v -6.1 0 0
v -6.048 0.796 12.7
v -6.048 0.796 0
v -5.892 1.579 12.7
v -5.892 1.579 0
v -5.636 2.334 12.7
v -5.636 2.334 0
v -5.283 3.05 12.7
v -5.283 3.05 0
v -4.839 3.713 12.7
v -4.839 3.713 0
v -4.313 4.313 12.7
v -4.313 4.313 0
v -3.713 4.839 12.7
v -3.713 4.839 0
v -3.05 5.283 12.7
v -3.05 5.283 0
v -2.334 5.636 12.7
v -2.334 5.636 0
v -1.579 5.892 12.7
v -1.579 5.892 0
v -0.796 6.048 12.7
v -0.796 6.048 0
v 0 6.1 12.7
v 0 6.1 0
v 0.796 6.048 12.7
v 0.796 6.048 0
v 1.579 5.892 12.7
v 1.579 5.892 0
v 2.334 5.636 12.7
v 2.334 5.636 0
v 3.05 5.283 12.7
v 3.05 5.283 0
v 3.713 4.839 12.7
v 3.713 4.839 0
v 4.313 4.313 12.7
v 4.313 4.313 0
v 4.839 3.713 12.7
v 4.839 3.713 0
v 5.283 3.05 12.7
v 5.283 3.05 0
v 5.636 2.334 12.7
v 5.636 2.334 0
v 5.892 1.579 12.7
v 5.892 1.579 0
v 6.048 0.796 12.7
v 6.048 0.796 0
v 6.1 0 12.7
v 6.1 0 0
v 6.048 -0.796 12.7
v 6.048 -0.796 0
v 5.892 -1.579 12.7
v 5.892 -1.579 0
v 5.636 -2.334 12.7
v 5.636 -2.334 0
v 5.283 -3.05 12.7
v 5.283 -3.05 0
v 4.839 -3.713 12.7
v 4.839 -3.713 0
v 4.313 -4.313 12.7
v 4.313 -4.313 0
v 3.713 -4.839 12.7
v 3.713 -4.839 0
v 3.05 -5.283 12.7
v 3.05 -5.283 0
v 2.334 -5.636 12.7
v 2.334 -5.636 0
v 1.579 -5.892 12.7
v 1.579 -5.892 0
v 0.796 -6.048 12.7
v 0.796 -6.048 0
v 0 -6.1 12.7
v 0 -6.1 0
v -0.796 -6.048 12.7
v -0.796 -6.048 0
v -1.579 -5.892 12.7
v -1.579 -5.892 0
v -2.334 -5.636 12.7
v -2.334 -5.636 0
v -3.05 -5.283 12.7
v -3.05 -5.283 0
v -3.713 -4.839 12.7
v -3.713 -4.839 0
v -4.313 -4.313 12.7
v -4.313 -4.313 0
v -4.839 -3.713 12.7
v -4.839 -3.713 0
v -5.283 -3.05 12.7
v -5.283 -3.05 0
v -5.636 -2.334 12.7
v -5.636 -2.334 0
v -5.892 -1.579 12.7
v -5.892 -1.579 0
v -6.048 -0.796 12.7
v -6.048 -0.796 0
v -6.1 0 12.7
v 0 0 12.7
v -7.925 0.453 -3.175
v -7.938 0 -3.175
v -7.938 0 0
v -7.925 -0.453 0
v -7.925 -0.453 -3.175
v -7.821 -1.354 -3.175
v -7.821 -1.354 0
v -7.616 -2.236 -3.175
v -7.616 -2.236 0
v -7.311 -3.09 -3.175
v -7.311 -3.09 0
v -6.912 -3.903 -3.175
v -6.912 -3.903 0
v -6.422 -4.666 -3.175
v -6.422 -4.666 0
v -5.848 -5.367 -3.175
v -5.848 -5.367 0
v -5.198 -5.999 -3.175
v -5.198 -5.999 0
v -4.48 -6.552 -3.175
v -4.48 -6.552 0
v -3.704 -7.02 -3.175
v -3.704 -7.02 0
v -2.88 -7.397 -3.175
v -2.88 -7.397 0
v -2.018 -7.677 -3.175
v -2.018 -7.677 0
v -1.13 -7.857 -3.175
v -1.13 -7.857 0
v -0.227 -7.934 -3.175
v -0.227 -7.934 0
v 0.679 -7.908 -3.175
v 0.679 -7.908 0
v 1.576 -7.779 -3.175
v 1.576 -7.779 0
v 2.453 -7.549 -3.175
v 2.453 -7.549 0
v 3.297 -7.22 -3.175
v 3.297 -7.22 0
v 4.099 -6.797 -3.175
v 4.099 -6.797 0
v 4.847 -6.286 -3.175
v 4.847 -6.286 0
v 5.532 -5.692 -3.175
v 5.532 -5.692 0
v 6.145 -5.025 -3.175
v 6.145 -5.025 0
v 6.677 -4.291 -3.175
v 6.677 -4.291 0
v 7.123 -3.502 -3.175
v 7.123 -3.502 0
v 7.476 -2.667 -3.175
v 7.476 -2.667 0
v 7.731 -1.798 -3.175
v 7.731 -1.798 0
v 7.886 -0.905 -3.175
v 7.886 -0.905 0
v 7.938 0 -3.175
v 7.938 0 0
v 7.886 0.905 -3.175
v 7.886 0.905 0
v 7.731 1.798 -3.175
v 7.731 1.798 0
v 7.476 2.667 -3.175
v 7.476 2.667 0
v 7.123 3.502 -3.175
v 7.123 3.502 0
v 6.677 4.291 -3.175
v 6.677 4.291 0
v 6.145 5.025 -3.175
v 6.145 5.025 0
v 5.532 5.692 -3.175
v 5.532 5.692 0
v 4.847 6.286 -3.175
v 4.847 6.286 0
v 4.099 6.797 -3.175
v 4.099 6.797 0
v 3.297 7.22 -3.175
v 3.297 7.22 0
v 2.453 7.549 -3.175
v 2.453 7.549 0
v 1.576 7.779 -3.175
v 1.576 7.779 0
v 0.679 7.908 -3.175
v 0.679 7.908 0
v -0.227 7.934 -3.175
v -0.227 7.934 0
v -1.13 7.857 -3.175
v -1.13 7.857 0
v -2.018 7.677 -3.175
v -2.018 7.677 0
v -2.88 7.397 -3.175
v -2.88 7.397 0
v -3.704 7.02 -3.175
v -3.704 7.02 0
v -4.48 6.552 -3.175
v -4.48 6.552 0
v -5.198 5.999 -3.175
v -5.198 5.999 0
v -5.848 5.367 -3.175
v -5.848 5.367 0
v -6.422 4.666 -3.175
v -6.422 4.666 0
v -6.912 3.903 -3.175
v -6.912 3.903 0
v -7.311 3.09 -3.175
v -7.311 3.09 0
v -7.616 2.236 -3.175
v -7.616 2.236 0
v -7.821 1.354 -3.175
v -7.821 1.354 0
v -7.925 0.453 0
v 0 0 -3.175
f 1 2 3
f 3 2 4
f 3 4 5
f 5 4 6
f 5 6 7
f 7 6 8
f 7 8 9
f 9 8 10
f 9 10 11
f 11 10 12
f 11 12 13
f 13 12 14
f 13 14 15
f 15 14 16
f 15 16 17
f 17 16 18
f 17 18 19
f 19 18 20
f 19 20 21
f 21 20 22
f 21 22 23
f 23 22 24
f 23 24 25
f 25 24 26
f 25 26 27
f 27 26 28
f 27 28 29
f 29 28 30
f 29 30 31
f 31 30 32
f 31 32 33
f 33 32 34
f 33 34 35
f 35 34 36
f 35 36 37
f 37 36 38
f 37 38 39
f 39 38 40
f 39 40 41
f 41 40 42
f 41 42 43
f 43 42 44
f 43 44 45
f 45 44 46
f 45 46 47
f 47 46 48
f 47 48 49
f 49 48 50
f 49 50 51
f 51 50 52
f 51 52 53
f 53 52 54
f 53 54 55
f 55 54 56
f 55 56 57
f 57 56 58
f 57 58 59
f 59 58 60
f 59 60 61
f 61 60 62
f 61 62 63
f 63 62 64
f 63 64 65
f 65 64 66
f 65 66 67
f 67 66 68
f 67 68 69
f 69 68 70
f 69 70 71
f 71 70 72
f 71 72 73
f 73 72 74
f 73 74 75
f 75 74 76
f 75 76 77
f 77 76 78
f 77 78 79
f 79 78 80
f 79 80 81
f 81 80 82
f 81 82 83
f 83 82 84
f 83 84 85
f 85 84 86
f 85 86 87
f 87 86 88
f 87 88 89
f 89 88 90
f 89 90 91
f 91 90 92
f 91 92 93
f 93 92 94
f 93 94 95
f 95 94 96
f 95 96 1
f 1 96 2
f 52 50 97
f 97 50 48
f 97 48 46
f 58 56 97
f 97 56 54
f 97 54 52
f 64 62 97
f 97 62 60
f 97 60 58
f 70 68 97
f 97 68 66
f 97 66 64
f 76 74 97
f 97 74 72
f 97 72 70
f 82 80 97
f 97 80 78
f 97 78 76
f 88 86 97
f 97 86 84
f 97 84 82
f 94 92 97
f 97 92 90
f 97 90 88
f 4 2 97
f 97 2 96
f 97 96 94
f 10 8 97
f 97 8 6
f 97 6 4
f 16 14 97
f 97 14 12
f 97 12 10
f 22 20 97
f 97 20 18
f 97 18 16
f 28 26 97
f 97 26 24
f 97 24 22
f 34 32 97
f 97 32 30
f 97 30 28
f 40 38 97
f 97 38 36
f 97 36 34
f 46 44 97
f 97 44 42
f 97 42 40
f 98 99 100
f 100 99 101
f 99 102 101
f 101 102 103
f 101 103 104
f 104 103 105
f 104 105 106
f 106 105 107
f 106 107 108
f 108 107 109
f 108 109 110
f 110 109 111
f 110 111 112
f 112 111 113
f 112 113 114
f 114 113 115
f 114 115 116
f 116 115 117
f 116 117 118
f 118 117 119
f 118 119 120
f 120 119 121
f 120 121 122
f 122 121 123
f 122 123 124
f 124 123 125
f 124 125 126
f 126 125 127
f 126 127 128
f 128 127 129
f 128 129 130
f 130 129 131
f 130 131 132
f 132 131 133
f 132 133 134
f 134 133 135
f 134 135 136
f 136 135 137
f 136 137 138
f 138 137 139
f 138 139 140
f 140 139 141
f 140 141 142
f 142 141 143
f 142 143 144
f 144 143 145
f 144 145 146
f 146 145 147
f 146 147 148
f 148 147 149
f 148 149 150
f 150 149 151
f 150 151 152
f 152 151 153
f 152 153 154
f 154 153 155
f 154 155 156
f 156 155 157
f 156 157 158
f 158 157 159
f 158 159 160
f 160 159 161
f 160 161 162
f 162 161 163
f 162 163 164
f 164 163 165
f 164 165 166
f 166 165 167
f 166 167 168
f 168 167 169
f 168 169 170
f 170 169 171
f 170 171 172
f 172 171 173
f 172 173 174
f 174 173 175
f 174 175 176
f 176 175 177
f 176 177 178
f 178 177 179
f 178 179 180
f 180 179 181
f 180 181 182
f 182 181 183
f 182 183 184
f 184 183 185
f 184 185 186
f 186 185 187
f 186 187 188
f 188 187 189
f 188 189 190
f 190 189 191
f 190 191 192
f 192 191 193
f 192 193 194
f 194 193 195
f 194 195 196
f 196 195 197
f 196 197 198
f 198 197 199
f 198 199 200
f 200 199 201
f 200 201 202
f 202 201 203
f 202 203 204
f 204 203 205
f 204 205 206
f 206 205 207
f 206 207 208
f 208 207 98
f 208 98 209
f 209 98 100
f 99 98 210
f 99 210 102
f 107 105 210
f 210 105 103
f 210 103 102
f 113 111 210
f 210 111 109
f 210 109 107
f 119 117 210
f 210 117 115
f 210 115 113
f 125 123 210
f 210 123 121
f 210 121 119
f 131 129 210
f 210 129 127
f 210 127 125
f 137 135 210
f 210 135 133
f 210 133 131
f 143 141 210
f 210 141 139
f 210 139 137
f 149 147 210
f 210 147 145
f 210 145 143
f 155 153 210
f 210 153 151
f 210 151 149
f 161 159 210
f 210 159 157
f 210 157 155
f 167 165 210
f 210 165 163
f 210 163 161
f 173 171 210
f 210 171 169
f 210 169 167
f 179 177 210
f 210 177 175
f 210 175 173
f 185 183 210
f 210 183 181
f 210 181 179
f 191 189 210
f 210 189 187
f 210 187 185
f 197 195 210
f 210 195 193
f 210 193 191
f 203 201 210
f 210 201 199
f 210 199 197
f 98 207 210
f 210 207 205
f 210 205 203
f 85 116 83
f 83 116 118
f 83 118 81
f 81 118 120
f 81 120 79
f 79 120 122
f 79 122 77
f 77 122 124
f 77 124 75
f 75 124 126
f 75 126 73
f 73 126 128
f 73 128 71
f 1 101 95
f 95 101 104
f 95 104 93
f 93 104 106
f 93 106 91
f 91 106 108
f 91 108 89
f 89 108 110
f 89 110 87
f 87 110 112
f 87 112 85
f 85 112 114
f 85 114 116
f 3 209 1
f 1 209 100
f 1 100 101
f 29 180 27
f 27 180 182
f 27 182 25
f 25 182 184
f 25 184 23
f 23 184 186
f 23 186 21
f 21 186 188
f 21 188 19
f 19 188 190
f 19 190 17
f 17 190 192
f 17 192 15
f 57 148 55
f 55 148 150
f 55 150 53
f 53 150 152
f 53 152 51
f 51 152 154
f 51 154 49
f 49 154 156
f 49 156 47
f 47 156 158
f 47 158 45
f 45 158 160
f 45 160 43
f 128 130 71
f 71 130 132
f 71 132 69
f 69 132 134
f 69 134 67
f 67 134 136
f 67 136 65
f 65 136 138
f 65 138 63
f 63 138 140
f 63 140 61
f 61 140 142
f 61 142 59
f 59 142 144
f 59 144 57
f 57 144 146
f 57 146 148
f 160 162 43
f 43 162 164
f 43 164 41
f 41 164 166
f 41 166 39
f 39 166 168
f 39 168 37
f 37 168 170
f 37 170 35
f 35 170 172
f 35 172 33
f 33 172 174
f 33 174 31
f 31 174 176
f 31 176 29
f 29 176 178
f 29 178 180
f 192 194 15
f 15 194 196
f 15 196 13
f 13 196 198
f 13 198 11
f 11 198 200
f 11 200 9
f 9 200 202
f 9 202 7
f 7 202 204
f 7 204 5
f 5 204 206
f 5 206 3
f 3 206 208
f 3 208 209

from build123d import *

# Parameters (mm, degrees)
SKETCH1_R           = 6.35
BOSS_EXTRUDE1_DEPTH = 12.7
SKETCH2_R           = 7.9375
BOSS_EXTRUDE2_DEPTH = 3.175
MOVE_FACE1_BY       = 0.25


with BuildPart() as part:
    # Sketch1 → Boss-Extrude1 (new body)
    with BuildSketch(Plane.XY):
        Circle(SKETCH1_R)
    extrude(amount=BOSS_EXTRUDE1_DEPTH)

    # Sketch2 → Boss-Extrude2 (add)
    with BuildSketch(Plane(origin=(0, 0, 0), x_dir=(-1, 0, 0), z_dir=(0, 0, -1))):
        Circle(SKETCH2_R)
    extrude(amount=BOSS_EXTRUDE2_DEPTH)

    # Move Face1: a curved face moved inward by 0.25
    add(Solid.thicken(part.faces().sort_by_distance((-6.35, 0, 6.35))[0], -MOVE_FACE1_BY), mode=Mode.SUBTRACT)


solid = part.part
